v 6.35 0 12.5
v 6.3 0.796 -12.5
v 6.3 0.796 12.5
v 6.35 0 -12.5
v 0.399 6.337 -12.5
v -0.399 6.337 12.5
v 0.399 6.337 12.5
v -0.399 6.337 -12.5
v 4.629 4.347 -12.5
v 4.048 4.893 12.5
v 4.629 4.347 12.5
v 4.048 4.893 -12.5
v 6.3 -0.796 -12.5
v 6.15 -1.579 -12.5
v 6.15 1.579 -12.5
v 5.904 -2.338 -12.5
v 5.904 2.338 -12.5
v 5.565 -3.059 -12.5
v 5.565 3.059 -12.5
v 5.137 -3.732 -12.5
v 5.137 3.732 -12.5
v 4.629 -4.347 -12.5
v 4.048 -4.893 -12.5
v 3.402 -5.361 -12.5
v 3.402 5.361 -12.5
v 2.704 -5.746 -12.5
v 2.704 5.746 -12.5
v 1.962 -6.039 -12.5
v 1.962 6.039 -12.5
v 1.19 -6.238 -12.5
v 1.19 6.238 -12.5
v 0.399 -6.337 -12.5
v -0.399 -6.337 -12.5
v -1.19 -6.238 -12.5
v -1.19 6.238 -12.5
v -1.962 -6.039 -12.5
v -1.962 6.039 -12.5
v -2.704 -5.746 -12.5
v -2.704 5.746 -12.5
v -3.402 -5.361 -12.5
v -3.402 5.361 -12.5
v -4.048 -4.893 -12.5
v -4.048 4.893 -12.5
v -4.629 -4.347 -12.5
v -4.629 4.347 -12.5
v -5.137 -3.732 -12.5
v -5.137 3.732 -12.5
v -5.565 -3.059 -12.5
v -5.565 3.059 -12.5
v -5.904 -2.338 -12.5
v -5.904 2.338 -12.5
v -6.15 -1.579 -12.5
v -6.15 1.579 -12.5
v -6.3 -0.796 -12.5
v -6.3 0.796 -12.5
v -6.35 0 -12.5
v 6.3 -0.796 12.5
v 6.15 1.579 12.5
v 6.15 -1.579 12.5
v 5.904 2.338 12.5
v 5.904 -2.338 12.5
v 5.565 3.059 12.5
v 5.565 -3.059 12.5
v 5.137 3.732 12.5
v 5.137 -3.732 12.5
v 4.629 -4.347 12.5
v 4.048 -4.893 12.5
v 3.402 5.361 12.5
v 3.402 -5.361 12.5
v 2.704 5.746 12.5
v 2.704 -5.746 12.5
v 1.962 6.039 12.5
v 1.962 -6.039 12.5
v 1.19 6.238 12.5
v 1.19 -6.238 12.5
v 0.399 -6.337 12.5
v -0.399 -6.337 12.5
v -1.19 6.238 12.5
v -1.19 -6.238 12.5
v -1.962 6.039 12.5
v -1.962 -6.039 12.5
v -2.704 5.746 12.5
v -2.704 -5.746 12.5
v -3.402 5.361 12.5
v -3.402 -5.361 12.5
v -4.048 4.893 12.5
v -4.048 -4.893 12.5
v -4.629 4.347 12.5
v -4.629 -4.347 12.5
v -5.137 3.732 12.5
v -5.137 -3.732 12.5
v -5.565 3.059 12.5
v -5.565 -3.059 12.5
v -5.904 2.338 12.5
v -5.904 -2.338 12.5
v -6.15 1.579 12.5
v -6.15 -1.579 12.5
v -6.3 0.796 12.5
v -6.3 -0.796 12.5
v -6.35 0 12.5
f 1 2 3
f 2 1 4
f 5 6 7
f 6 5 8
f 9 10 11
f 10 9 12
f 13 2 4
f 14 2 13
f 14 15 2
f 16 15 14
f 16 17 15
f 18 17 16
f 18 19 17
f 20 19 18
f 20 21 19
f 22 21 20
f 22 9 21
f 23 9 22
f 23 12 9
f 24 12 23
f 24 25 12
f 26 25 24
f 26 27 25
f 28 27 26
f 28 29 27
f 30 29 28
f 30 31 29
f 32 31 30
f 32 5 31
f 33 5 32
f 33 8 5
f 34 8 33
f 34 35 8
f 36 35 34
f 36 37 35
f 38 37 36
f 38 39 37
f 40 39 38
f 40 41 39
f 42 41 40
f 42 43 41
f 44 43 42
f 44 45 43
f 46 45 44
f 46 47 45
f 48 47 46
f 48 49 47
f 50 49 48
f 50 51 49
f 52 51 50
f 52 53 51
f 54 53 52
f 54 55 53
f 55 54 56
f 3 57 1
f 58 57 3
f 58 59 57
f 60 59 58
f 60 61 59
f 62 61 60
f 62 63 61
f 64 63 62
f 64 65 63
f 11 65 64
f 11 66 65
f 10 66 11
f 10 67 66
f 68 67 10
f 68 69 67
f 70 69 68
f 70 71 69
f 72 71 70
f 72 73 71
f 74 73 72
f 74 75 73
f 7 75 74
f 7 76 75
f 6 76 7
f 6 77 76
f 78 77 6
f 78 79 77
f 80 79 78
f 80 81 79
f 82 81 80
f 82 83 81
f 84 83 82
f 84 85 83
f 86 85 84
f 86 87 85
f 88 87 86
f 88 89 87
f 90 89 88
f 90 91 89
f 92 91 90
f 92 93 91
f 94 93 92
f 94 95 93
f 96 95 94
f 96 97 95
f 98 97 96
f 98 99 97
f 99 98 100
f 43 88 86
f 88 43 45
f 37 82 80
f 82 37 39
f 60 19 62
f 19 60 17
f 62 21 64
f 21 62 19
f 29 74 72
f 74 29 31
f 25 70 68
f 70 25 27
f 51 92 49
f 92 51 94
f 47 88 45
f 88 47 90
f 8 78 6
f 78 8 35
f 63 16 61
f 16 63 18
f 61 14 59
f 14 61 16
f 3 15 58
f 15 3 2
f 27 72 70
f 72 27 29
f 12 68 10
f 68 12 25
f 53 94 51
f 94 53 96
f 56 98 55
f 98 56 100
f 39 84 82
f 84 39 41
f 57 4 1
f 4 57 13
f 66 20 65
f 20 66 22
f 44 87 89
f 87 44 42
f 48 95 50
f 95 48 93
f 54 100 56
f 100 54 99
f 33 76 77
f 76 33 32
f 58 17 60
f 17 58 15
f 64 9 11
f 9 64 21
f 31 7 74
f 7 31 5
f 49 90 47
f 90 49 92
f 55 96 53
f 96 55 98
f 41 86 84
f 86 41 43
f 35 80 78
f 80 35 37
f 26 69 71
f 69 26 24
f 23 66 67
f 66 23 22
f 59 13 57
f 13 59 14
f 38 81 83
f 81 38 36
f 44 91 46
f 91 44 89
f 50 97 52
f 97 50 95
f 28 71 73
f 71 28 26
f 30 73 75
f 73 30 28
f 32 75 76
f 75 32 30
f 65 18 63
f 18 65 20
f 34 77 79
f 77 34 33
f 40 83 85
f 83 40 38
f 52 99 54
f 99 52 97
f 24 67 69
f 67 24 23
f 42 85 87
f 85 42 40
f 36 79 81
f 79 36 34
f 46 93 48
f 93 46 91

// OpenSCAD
$fn = 50;


difference() {
	union() {
		translate(v = [0, 0, -12.5000000000]) {
			cylinder(h = 25, r = 6.3500000000);
		}
	}
	union() {
		translate(v = [0, 0, -100.0000000000]) {
			cylinder(h = 200, r = 0);
		}
	}
}
